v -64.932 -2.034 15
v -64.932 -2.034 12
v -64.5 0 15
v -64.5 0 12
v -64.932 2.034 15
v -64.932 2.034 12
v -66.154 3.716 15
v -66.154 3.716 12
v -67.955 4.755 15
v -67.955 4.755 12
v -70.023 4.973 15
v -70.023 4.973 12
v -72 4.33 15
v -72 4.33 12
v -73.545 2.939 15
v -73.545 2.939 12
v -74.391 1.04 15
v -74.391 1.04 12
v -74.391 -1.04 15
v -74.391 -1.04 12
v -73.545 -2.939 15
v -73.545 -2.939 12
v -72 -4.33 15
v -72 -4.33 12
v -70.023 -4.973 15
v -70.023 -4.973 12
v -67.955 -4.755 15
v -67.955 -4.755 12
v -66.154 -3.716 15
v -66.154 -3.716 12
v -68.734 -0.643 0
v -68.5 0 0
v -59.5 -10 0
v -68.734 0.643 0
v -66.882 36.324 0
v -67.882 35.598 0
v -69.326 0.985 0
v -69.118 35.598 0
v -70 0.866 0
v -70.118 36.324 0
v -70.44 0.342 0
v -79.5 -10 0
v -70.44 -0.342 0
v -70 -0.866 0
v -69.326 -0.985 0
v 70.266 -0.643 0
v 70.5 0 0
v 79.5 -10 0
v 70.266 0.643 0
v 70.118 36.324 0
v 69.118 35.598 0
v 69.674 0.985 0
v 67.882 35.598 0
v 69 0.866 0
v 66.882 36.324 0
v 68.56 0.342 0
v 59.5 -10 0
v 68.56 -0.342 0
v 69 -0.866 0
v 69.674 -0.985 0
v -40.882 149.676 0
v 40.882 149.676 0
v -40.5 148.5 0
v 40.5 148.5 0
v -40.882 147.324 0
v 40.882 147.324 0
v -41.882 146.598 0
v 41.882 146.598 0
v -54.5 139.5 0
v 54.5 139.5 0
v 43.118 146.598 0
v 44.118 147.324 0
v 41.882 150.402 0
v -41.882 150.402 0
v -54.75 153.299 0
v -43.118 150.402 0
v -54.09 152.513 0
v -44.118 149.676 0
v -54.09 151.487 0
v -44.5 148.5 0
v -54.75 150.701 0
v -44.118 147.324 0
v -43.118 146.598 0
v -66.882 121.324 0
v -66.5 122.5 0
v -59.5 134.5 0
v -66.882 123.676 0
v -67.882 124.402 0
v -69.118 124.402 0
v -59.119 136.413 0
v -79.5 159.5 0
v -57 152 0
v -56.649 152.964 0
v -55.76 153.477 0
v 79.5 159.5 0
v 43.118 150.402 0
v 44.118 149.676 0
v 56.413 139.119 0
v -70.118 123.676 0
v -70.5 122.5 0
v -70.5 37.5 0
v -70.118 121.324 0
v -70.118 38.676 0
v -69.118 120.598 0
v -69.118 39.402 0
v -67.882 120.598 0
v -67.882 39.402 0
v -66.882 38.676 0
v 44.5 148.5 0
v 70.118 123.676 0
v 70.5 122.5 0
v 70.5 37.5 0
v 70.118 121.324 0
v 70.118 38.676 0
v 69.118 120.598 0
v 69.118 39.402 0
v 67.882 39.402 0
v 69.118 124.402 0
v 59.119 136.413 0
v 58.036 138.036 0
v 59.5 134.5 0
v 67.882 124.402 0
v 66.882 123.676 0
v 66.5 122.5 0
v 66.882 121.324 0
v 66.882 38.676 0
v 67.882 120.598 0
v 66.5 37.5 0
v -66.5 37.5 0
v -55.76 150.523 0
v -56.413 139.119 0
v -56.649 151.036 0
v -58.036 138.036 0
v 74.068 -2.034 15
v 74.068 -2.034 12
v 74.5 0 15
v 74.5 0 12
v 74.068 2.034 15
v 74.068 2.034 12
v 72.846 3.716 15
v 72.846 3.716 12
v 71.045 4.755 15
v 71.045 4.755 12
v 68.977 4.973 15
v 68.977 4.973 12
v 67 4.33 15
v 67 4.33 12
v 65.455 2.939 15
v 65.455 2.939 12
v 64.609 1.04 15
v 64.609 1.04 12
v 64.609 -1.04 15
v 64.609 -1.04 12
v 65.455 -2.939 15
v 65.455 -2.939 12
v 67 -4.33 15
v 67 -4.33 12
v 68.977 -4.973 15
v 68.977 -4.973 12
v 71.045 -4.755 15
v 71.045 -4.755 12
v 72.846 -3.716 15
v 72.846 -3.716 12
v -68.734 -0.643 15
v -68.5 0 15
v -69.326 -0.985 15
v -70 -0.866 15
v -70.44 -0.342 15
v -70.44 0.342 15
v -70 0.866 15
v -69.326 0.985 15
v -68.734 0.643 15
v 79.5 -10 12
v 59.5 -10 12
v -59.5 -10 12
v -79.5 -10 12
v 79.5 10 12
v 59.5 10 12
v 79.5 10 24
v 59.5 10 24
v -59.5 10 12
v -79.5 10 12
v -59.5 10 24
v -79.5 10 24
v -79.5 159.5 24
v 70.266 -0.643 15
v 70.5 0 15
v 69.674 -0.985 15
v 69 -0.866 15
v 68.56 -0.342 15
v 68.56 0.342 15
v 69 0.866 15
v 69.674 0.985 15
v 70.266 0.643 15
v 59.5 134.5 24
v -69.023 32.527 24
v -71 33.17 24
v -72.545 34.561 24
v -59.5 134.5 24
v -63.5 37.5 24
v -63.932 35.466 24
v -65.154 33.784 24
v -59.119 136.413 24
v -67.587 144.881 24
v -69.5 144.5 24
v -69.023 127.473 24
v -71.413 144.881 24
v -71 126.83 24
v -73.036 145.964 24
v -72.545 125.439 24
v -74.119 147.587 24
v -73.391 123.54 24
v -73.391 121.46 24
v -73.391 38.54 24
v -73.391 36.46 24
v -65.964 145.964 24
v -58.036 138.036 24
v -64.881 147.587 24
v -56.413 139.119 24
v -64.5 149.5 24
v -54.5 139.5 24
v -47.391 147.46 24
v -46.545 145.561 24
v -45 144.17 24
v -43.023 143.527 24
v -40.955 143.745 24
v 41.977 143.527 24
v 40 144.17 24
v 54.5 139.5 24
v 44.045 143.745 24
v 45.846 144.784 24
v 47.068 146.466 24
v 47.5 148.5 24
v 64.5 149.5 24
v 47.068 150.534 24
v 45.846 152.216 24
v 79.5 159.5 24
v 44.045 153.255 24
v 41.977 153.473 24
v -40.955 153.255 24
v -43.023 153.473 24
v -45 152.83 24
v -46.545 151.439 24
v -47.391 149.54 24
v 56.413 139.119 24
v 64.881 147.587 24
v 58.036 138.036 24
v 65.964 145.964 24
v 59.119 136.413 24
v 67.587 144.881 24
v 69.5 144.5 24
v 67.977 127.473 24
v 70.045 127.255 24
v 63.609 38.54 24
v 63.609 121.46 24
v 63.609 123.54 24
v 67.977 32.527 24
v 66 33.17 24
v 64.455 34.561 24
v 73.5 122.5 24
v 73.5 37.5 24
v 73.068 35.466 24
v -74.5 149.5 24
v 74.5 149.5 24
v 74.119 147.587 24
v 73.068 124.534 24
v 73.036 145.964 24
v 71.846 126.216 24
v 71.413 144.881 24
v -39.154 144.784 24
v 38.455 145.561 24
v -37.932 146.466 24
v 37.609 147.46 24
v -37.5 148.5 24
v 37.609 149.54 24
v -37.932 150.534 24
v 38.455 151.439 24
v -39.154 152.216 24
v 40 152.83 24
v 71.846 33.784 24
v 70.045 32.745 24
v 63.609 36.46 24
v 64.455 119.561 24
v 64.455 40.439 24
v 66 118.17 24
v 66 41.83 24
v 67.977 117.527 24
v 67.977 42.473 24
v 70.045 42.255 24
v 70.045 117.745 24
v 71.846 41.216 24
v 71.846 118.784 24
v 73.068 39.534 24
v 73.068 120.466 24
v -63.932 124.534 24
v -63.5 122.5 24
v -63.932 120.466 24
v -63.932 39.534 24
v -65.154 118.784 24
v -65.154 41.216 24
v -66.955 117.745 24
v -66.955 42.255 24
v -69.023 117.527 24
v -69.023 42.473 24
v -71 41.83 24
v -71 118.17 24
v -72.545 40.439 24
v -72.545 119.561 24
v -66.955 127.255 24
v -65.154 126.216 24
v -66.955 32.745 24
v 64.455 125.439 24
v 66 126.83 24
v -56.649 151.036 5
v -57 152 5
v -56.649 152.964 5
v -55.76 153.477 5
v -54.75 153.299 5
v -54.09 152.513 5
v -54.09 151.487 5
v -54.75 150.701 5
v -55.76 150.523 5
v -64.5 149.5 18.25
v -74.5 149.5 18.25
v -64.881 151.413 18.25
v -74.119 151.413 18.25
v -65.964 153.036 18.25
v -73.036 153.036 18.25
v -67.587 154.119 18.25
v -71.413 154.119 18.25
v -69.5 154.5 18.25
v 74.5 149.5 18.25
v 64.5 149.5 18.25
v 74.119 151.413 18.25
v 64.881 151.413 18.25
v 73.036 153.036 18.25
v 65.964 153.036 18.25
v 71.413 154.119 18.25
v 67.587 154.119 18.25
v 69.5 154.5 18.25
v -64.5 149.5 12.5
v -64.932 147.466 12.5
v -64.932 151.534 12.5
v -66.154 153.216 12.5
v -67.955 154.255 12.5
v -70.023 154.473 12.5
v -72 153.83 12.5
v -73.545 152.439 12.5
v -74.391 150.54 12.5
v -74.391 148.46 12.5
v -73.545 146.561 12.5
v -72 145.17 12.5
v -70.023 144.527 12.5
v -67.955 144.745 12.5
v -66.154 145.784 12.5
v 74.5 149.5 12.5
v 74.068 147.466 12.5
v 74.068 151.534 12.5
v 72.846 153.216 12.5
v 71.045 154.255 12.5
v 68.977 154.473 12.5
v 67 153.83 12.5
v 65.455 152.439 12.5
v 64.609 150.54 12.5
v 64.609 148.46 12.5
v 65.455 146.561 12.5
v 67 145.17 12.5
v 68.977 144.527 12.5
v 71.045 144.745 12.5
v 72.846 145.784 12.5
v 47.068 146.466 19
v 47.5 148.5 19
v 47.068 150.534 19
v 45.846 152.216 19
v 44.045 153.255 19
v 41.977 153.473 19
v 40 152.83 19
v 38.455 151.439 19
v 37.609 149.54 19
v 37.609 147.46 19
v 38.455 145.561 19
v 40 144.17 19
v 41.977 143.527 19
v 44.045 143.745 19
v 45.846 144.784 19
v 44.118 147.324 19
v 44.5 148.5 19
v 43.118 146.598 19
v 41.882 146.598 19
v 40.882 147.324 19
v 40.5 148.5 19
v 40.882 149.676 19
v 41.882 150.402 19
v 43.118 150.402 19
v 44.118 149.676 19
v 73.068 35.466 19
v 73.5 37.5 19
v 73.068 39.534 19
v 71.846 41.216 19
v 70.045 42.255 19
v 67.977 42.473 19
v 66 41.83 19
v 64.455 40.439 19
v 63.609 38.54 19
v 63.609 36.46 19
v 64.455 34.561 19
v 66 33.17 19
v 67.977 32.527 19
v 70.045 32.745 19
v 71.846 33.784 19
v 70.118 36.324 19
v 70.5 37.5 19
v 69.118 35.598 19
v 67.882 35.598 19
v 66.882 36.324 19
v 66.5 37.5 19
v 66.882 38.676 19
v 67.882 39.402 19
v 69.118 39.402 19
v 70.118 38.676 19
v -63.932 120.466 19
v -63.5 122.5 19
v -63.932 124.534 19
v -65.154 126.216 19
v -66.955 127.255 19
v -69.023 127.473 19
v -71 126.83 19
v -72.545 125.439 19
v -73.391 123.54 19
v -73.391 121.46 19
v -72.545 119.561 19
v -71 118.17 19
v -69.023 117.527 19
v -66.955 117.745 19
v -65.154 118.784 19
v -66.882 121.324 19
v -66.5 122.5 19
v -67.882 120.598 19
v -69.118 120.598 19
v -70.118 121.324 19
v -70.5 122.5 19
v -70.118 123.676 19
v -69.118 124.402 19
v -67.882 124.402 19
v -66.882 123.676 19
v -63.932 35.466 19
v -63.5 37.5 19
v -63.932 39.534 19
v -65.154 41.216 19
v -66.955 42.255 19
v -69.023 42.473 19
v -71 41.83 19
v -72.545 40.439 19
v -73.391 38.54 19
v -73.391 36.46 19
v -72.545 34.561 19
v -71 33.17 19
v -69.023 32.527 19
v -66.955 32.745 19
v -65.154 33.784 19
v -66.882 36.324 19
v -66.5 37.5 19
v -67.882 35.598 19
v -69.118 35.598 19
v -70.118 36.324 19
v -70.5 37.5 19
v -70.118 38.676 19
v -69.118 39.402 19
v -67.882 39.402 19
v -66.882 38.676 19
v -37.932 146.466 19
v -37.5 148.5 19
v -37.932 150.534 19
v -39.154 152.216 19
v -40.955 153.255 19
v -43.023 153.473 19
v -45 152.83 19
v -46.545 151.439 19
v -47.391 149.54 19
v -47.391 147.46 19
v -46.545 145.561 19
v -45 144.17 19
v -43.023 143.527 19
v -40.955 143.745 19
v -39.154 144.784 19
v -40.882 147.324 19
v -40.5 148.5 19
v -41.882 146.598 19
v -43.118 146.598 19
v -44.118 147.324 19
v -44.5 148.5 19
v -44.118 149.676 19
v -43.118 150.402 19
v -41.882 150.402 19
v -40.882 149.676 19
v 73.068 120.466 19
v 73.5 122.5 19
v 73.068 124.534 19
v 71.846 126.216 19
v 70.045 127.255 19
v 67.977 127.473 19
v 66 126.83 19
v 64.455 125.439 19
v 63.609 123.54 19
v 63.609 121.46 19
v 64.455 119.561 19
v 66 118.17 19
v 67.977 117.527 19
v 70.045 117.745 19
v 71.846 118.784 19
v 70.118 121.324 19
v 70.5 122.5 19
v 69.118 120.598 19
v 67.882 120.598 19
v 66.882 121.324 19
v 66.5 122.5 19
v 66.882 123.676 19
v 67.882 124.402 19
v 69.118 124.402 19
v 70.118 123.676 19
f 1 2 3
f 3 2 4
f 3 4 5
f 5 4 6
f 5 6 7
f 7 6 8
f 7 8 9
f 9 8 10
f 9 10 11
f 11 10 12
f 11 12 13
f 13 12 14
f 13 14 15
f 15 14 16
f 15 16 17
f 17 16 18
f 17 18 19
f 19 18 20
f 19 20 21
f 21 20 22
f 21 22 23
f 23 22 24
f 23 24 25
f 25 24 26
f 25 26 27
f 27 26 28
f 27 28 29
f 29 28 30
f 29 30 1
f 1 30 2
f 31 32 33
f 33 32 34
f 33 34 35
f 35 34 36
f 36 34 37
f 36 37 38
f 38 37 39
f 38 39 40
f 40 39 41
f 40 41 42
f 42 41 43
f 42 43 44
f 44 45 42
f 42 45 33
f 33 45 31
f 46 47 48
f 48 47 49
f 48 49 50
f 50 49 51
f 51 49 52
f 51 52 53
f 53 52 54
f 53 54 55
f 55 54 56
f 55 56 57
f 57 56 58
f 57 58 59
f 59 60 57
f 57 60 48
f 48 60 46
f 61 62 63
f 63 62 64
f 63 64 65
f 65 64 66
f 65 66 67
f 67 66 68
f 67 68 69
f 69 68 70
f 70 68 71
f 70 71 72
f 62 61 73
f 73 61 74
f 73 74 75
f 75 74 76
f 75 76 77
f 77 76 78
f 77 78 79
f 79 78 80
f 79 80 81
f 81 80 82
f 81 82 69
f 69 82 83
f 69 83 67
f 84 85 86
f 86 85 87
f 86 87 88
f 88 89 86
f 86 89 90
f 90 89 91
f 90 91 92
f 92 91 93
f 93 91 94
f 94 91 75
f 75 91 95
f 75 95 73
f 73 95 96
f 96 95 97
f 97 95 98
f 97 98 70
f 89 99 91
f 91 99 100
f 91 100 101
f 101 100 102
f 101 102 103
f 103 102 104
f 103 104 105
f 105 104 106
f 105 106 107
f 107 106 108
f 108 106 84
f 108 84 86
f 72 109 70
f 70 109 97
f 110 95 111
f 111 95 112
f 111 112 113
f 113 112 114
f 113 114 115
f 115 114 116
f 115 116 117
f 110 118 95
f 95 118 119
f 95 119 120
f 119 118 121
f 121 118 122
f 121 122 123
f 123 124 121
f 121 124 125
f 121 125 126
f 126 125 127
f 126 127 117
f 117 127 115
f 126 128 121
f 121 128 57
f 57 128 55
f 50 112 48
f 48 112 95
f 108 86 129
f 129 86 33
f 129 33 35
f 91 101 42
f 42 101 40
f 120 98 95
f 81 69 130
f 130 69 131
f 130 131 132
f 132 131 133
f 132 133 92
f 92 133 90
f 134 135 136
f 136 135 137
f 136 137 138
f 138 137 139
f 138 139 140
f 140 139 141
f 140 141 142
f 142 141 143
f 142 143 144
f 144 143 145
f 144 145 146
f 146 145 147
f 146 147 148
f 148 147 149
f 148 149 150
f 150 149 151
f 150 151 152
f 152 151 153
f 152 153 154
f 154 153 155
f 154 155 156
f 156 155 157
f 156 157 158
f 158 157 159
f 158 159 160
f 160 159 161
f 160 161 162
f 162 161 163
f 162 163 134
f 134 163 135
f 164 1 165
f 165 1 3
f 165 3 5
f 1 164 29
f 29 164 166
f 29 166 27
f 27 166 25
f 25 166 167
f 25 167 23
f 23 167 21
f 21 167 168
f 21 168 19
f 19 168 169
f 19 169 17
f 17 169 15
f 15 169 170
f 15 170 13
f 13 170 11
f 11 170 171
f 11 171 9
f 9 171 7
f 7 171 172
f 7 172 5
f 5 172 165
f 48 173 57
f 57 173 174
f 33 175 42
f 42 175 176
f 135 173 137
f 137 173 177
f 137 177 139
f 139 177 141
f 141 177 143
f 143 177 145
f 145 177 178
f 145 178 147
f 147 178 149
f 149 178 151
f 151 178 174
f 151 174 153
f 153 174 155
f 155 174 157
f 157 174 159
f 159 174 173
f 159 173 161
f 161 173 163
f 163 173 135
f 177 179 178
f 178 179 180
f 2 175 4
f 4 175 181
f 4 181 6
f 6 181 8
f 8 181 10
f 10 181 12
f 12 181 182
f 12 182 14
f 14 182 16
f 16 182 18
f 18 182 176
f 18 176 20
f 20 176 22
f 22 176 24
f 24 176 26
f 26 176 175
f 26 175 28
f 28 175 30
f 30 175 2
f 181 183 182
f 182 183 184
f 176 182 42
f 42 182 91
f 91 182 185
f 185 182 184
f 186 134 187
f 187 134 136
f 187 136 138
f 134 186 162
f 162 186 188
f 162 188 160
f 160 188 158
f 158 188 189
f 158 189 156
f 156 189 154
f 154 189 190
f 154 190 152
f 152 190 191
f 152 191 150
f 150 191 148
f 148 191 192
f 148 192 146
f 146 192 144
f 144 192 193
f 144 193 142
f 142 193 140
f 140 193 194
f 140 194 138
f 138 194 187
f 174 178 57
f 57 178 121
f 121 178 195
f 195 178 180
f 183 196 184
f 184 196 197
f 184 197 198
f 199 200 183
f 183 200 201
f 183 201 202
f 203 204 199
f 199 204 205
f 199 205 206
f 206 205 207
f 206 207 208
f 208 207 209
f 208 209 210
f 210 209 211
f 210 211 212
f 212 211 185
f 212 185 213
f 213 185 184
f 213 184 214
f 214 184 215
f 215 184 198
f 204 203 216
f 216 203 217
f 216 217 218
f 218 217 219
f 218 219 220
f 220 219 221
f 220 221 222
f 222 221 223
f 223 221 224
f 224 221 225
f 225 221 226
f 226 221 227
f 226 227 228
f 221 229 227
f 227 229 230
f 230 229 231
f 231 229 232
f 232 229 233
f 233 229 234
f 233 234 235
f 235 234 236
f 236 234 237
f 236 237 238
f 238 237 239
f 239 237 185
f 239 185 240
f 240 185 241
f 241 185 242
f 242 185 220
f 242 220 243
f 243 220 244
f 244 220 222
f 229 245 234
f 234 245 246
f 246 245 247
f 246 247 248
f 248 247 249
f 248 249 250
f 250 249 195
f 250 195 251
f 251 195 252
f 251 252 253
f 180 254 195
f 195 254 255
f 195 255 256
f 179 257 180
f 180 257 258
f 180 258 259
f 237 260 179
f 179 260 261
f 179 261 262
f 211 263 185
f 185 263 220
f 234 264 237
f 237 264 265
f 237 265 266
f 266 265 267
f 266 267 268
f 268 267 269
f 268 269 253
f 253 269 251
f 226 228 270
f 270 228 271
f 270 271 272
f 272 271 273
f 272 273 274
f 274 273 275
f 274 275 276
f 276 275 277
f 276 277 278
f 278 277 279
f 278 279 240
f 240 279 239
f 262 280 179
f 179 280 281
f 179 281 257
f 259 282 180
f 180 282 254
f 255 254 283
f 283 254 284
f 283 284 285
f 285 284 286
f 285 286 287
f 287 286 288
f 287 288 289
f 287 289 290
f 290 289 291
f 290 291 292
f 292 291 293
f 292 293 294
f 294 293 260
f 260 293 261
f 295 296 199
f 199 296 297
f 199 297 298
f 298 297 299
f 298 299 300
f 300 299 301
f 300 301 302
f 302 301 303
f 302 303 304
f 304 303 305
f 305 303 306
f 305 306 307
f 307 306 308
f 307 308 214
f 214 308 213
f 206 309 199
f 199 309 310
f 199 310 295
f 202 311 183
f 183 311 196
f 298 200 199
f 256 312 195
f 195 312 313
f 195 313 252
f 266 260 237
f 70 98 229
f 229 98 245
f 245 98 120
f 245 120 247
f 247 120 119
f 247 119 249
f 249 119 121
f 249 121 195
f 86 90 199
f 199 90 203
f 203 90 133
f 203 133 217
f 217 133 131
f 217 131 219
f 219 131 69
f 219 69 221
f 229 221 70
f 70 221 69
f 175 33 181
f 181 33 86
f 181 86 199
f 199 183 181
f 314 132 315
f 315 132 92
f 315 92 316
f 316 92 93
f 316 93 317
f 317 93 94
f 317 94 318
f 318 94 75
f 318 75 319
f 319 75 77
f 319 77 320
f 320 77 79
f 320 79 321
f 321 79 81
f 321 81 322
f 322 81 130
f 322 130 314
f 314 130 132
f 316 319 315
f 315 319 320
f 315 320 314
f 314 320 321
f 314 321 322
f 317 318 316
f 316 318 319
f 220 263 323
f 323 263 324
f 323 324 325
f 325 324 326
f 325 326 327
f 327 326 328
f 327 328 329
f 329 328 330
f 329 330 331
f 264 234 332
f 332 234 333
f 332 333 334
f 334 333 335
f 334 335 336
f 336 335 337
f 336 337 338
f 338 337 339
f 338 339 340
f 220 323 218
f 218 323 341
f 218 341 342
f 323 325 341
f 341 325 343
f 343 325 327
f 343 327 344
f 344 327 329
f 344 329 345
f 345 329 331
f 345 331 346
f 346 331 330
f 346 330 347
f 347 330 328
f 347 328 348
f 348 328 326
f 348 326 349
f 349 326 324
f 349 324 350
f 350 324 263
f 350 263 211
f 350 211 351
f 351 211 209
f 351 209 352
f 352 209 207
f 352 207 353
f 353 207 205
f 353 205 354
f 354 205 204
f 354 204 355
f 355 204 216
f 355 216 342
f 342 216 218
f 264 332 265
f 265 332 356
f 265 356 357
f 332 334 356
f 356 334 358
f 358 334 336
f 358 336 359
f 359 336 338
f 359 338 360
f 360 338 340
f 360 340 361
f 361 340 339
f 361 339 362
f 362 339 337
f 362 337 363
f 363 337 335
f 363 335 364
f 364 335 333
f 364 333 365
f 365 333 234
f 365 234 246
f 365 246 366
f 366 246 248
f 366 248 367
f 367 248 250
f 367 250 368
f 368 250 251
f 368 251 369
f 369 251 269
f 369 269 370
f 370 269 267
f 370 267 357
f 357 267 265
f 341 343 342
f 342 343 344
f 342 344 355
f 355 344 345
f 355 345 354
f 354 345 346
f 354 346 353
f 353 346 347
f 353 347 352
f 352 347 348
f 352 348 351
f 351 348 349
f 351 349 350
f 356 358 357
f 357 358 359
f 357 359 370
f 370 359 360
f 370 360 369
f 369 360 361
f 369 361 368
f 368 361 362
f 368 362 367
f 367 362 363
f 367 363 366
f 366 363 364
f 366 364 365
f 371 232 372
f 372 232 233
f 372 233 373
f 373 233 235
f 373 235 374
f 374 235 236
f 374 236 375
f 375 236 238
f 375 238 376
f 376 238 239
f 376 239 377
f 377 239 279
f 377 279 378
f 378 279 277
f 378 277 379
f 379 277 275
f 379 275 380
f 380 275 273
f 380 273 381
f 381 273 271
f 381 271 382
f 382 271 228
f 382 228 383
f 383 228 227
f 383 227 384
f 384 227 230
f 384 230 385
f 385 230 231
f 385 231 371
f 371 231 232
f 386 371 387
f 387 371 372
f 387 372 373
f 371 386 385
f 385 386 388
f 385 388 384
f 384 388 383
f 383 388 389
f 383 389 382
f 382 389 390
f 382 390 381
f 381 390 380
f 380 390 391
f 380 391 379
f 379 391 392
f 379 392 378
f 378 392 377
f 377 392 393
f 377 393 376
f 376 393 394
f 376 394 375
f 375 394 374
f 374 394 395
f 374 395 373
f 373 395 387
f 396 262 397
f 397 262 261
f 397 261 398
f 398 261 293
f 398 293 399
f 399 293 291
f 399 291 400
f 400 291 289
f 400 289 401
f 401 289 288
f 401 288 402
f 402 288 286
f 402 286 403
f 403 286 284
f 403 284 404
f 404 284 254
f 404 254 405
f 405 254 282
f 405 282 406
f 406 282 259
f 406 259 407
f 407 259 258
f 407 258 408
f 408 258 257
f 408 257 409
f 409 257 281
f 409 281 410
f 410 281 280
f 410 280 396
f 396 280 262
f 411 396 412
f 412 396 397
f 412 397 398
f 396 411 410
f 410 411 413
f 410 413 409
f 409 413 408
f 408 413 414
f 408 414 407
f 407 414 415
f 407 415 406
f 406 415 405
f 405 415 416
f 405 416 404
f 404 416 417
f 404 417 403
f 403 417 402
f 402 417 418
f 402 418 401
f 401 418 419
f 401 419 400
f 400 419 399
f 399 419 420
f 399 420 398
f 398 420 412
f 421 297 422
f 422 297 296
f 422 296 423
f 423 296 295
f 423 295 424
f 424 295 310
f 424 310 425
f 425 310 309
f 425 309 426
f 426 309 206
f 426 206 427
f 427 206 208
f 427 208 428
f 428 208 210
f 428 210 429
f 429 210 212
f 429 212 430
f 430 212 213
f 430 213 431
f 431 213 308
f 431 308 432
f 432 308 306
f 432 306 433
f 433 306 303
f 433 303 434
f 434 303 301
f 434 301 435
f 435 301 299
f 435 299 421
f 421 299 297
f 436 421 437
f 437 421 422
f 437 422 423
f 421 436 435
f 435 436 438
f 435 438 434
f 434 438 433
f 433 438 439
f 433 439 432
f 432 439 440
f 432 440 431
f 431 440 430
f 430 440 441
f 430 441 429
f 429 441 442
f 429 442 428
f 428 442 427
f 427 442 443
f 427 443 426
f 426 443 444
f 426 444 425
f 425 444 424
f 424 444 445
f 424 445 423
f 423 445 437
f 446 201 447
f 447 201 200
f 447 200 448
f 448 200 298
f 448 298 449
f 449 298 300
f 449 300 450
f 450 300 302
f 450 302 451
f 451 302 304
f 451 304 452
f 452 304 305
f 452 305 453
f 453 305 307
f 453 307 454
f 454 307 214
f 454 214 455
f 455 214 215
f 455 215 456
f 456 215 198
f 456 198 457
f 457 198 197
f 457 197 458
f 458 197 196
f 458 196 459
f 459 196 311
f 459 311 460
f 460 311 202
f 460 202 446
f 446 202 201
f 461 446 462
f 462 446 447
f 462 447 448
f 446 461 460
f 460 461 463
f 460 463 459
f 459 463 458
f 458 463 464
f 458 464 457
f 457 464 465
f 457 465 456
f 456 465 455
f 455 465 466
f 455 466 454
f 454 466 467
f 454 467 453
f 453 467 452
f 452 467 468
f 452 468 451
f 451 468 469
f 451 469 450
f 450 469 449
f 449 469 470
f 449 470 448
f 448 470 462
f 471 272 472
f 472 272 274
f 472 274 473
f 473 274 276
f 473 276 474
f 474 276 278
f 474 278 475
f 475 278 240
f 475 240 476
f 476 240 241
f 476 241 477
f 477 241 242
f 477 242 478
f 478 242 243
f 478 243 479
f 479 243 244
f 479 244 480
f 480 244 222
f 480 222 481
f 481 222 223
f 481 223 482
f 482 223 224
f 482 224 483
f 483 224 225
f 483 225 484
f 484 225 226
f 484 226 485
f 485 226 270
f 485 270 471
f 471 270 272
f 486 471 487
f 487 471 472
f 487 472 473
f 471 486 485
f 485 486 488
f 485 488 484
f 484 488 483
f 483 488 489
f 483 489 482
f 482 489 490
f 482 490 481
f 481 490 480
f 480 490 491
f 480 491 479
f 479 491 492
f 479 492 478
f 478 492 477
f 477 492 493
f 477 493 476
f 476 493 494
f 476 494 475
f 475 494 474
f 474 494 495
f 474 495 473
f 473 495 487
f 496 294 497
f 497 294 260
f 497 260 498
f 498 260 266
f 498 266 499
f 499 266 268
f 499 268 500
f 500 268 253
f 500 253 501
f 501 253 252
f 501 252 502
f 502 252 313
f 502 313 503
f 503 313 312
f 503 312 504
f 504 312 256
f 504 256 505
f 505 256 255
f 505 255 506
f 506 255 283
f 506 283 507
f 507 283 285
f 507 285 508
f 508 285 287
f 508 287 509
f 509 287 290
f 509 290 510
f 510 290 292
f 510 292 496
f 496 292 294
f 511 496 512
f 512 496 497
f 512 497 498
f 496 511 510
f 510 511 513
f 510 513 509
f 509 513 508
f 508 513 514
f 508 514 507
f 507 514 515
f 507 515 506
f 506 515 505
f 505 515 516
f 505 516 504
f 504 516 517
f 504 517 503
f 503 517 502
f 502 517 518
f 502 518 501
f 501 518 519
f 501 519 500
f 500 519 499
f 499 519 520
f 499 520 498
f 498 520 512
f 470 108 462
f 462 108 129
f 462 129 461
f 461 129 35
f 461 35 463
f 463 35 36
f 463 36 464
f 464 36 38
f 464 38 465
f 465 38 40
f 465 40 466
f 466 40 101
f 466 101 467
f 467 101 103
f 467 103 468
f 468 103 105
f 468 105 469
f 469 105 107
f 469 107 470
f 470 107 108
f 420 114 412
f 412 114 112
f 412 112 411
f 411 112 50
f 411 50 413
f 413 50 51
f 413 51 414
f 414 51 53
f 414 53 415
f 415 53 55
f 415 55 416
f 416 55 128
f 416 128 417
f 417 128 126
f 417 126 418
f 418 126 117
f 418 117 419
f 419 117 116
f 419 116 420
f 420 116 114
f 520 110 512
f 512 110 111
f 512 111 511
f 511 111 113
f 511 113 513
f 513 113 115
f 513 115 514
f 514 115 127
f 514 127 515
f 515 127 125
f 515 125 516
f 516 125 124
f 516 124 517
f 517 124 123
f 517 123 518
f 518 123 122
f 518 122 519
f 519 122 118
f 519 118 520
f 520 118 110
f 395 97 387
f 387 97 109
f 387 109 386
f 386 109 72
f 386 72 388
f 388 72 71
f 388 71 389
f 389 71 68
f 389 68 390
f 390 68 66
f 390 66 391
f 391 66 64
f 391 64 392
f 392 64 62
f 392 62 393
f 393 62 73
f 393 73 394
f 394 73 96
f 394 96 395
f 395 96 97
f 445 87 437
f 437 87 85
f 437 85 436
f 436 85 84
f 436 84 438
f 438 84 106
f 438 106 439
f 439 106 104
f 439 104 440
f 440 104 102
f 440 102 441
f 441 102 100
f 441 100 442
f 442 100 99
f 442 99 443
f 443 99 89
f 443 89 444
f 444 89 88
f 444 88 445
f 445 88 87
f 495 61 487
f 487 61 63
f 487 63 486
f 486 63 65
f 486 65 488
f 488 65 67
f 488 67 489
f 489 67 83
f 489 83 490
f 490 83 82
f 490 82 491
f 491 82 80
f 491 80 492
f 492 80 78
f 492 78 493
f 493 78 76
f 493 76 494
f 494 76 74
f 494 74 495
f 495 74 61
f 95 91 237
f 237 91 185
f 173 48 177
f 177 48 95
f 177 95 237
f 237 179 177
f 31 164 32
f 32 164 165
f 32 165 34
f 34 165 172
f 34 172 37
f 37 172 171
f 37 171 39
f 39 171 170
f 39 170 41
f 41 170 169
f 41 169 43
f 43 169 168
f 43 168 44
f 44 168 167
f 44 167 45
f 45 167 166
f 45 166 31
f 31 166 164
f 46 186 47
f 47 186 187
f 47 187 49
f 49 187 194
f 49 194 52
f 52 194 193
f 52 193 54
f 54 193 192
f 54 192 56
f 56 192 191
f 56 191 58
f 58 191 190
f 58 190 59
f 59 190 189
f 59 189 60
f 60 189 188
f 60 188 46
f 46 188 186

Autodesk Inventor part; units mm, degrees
ref_plane "YZ Plane" through (0, 0, 0) normal (1, 0, 0) x (0, 1, 0)
ref_plane "XZ Plane" through (0, 0, 0) normal (0, 1, 0) x (-1, 0, 0)
ref_plane "XY Plane" through (0, 0, 0) normal (0, 0, 1) x (1, 0, 0)
sketch "Sketch1" plane through (0, 0, 0) normal (0, 0, 1) x (1, 0, 0)
  line L0 (-79.5, -159.5) -> (79.5, -159.5)
  line L1 (79.5, -159.5) -> (79.5, 159.5)
  line L2 (79.5, 159.5) -> (-79.5, 159.5)
  line L3 (-79.5, 159.5) -> (-79.5, -159.5)
  line L4 (-79.5, -159.5) -> (79.5, 159.5) construction
  line L5 (79.5, -159.5) -> (-79.5, 159.5) construction
  line L6 (-59.5, -139.5) -> (59.5, -139.5)
  line L7 (59.5, -139.5) -> (59.5, 139.5)
  line L8 (59.5, 139.5) -> (-59.5, 139.5)
  line L9 (-59.5, 139.5) -> (-59.5, -139.5)
  line L10 (-59.5, -139.5) -> (59.5, 139.5) construction
  line L11 (59.5, -139.5) -> (-59.5, 139.5) construction
  circle A0 centre (68.5, -122.5) radius 1
  circle A1 centre (42.5, -148.5) radius 1
  circle A2 centre (68.5, -37.5) radius 1
  circle A3 centre (-68.5, -37.5) radius 1
  circle A4 centre (-68.5, -122.5) radius 1
  circle A5 centre (-42.5, -148.5) radius 1
  circle A6 centre (68.5, 122.5) radius 1
  circle A7 centre (42.5, 148.5) radius 1
  circle A8 centre (68.5, 37.5) radius 1
  circle A9 centre (-68.5, 37.5) radius 1
  circle A10 centre (-68.5, 122.5) radius 1
  circle A11 centre (-42.5, 148.5) radius 1
  circle A12 centre (-42.5, 148.5) radius 2
  circle A13 centre (-68.5, 122.5) radius 2
  circle A14 centre (42.5, 148.5) radius 2
  circle A15 centre (68.5, 122.5) radius 2
  circle A16 centre (68.5, 37.5) radius 2
  circle A17 centre (-68.5, 37.5) radius 2
  circle A18 centre (-68.5, -37.5) radius 2
  circle A19 centre (-68.5, -122.5) radius 2
  circle A20 centre (-42.5, -148.5) radius 2
  circle A21 centre (42.5, -148.5) radius 2
  circle A22 centre (68.5, -122.5) radius 2
  circle A23 centre (68.5, -37.5) radius 2
  point P0 (0, 0)
  dimension "d0" = 159
  dimension "d1" = 319
  dimension "d2" = 119
  dimension "d3" = 279
  dimension "d4" = 2
  dimension "d5" = 11
  dimension "d6" = 37
  dimension "d7" = 2
  dimension "d8" = 11
  dimension "d9" = 37
  dimension "d10" = 2
  dimension "d11" = 11
  dimension "d12" = 122
  dimension "d13" = 4
  dimension "d14" = 4
  dimension "d15" = 4
  dimension "d16" = 4
  dimension "d17" = 4
  dimension "d18" = 4
  dimension "d19" = 4
  dimension "d20" = 4
  dimension "d21" = 4
  dimension "d22" = 4
  dimension "d23" = 4
  dimension "d24" = 4
extrude "Extrusion1" add sketch "Sketch1" along normal blind 24 contours L3 L2 L1 L0
sketch "Sketch2" plane through (0, 0, 24) normal (0, 0, 1) x (1, 0, 0)
  circle A0 centre (42.5, -148.5) radius 2 projected
  circle A1 centre (42.5, -148.5) radius 5
  circle A2 centre (68.5, -122.5) radius 2 projected
  circle A3 centre (68.5, -122.5) radius 5
  circle A4 centre (68.5, -37.5) radius 2 projected
  circle A5 centre (68.5, -37.5) radius 5
  circle A6 centre (-42.5, -148.5) radius 5
  circle A7 centre (-68.5, -122.5) radius 5
  circle A8 centre (-68.5, -37.5) radius 5
  circle A9 centre (-68.5, 37.5) radius 5
  circle A10 centre (-68.5, 122.5) radius 5
  circle A11 centre (-42.5, 148.5) radius 5
  circle A12 centre (42.5, 148.5) radius 5
  circle A13 centre (68.5, 122.5) radius 5
  circle A14 centre (68.5, 37.5) radius 5
  point P0 (0, 0)
  dimension "d27" = 10
  dimension "d28" = 10
  dimension "d29" = 10
extrude "Extrusion2" cut sketch "Sketch2" against normal blind 5
sketch "Sketch3" plane through (0, 0, 24) normal (0, 0, 1) x (1, 0, 0)
  circle A0 centre (-69.5, 149.5) radius 5
  line L0 (79.5, 159.5) -> (-79.5, 159.5) projected
  line L1 (-79.5, 159.5) -> (-79.5, -159.5) projected
  line L2 (0, 115.3552) -> (0, 76.8376)
  circle A1 centre (69.5, 149.5) radius 5
  point P0 (0, 0)
  dimension "d32" = 10
  dimension "d33" = 10
  dimension "d34" = 10
extrude "Extrusion3" cut sketch "Sketch3" against normal blind 11.5
sketch "Sketch4" plane through (0, 0, 24) normal (0, 0, 1) x (1, 0, 0)
  circle A0 centre (-69.5, 149.5) radius 5 projected
  line L0 (-74.5, 149.5) -> (-64.5, 149.5)
  circle A1 centre (69.5, 149.5) radius 5 projected
  line L1 (64.5, 149.5) -> (74.5, 149.5)
  point P0 (0, 0)
extrude "Extrusion4" add sketch "Sketch4" against normal blind 5.75 contours L0 A0 | L1 A1 picked at (-70.091, 152.6074) picked at (68.909, 152.6074)
sketch "Sketch5" plane through (0, 0, 0) normal (0, 0, -1) x (-1, 0, 0)
  circle A0 centre (-55.5, -152) radius 1.5
  line L0 (79.5, -159.5) -> (-79.5, -159.5) projected
  line L1 (-79.5, -159.5) -> (-79.5, 159.5) projected
  circle A1 centre (55.5, 152) radius 1.5
  line L2 (-79.5, 159.5) -> (79.5, 159.5) projected
  line L3 (79.5, 159.5) -> (79.5, -159.5) projected
  point P0 (0, 0)
  dimension "d39" = 3
  dimension "d40" = 7.5
  dimension "d41" = 24
  dimension "d42" = 3
  dimension "d43" = 7.5
  dimension "d44" = 24
extrude "Extrusion5" cut sketch "Sketch5" against normal blind 5 contours A0 | A1
sketch "Sketch6" plane through (0, 0, 24) normal (0, 0, 1) x (1, 0, 0)
  line L0 (-79.5, -159.5) -> (79.5, -159.5) projected
  line L1 (79.5, -159.5) -> (79.5, 159.5) projected
  point P0 (0, 0)
sketch "Sketch7" plane through (0, 0, 24) normal (0, 0, 1) x (1, 0, 0)
  point P0 (0, 0)
sketch "Sketch8" plane through (0, 0, 24) normal (0, 0, 1) x (1, 0, 0)
  line L0 (-16.5, -124.5) -> (-16.5, -58.5)
  line L1 (-79.5, -159.5) -> (79.5, -159.5) projected
  line L2 (79.5, -159.5) -> (79.5, 159.5) projected
  line L3 (59.5, -139.5) -> (59.5, 139.5) projected
  line L4 (-16.5, -58.5) -> (59.5, -58.5)
  line L5 (-16.5, -124.5) -> (59.5, -124.5)
  line L6 (59.5, 139.5) -> (59.5, -139.5) projected
  point P0 (0, 0)
sketch "Sketch9" plane through (0, 0, 24) normal (0, 0, 1) x (1, 0, 0)
  point P0 (0, 0)
sketch "Sketch10" plane through (0, 0, 24) normal (0, 0, 1) x (1, 0, 0)
  point P0 (0, 0)
sketch "Sketch11" plane through (0, 0, 24) normal (0, 0, 1) x (1, 0, 0)
  point P0 (0, 0)
sketch "Sketch12" plane through (0, 0, 24) normal (0, 0, 1) x (1, 0, 0)
  point P0 (0, 0)
extrude "Extrusion6" add sketch "Sketch8" against normal blind 2
fillet "Fillet1" radius 5 6 edges at (59.5, -139.5, 12) (59.5, -58.5, 23) (-59.5, -139.5, 12) (59.5, -124.5, 23) (-59.5, 139.5, 12) (59.5, 139.5, 12)
fillet "Fillet2" radius 2 2 edges at (-16.5, -58.5, 23) (-16.5, -124.5, 23)
sketch "Sketch13" plane through (0, 0, 24) normal (0, 0, 1) x (1, 0, 0)
  point P0 (0, 0)
sketch "Sketch14" plane through (0, 0, 24) normal (0, 0, 1) x (1, 0, 0)
  circle A0 centre (-11.8564, -120.5) radius 0.5
  circle A1 centre (-11.8564, -62.5) radius 0.5
  circle A2 centre (37.1436, -120.5) radius 0.5
  circle A3 centre (37.1436, -62.5) radius 0.5
  line L0 (-14.5, -124.5) -> (54.5, -124.5) projected
  point P0 (0, 0)
  dimension "d58" = 1
  dimension "d59" = 1
  dimension "d60" = 58
  dimension "d61" = 1
  dimension "d62" = 1
  dimension "d63" = 49
  dimension "d64" = 49
  dimension "d65" = 4
extrude "Extrusion7" cut sketch "Sketch14" against normal blind 20
fillet "Fillet3" radius 5 1 edges at (59.5, -91.5, 22)
sketch "Sketch15" plane through (0, 0, 22) normal (0, 0, -1) x (-1, 0, 0)
  circle A0 centre (-37.1436, -62.5) radius 0.5 projected
  circle A1 centre (-37.1436, -120.5) radius 0.5 projected
  circle A2 centre (-37.1436, -62.5) radius 0.5 projected
  circle A3 centre (-37.1436, -62.5) radius 4
  circle A4 centre (11.8564, -62.5) radius 0.5 projected
  circle A5 centre (11.8564, -62.5) radius 4
  circle A6 centre (11.8564, -120.5) radius 0.5 projected
  circle A7 centre (11.8564, -120.5) radius 4
  circle A8 centre (-37.1436, -120.5) radius 0.5 projected
  circle A9 centre (-37.1436, -120.5) radius 4
  point P0 (0, 0)
  dimension "d71" = 8
  dimension "d72" = 8
  dimension "d73" = 8
  dimension "d74" = 8
extrude "Extrusion8" add sketch "Sketch15" along normal blind 2
sketch "Sketch17" plane through (-79.5, -159.5, 0) normal (0, -1, 0) x (1, 0, 0)
  line L0 (93, 24) -> (113, 24)
  line L1 (113, 24) -> (113, 14)
  line L2 (113, 14) -> (93, 14)
  line L3 (93, 14) -> (93, 24)
  line L4 (0, 24) -> (159, 24) projected
  line L5 (0, 0) -> (0, 24) projected
  point P0 (79.5, 0)
  dimension "d83" = 20
  dimension "d84" = 10
  dimension "d85" = 93
extrude "Extrusion10" cut sketch "Sketch17" against normal blind 21
fillet "Fillet4" radius 2 4 edges at (13.5, -149.5, 14) (13.5, -149.5, 24) (33.5, -149.5, 24) (33.5, -149.5, 14)
sketch "Sketch18" plane through (0, 0, 24) normal (0, 0, 1) x (1, 0, 0)
  point P0 (0, 0)
sketch "Sketch19" plane through (79.5, -159.5, 0) normal (1, 0, 0) x (0, 0, -1)
  line L0 (-24, 169.5) -> (-12, 169.5)
  line L1 (-12, 169.5) -> (-12, 149.5)
  line L2 (-12, 149.5) -> (0, 149.5)
  line L3 (-24, 319) -> (-24, 0) projected
  point P0 (0, 159.5)
  dimension "d89" = 12
  dimension "d90" = 20
  dimension "d91" = 12
split body "Split1" sketch "Sketch19" result one side removed curves L0 L1 L2 removed pieces at (4.5717, -81.9705, 23.5)
sketch "Sketch20" plane through (59.5, 10, 12) normal (0, 0, 1) x (1, 0, 0)
  circle A0 centre (-129, -10) radius 5
  line L0 (-119, 0) -> (-119, -20) projected
  line L1 (-139, -20) -> (-119, -20) projected
  line L2 (-59.5, -10) -> (-59.5, -28.6387)
  circle A1 centre (10, -10) radius 5
  dimension "d93" = 10
  dimension "d94" = 10
  dimension "d95" = 10
extrude "Extrusion13" add sketch "Sketch20" along normal blind 3
sketch "Sketch22" plane through (-69.5, 0, 15) normal (0, 0, 1) x (1, 0, 0)
  circle A0 centre (0, 0) radius 1
  circle A1 centre (139, 0) radius 1
  point P0 (69.5, 0)
  dimension "d103" = 2
extrude "Extrusion14" cut sketch "Sketch22" against normal blind 33
properties part number "led_matrix_frame_upper"
